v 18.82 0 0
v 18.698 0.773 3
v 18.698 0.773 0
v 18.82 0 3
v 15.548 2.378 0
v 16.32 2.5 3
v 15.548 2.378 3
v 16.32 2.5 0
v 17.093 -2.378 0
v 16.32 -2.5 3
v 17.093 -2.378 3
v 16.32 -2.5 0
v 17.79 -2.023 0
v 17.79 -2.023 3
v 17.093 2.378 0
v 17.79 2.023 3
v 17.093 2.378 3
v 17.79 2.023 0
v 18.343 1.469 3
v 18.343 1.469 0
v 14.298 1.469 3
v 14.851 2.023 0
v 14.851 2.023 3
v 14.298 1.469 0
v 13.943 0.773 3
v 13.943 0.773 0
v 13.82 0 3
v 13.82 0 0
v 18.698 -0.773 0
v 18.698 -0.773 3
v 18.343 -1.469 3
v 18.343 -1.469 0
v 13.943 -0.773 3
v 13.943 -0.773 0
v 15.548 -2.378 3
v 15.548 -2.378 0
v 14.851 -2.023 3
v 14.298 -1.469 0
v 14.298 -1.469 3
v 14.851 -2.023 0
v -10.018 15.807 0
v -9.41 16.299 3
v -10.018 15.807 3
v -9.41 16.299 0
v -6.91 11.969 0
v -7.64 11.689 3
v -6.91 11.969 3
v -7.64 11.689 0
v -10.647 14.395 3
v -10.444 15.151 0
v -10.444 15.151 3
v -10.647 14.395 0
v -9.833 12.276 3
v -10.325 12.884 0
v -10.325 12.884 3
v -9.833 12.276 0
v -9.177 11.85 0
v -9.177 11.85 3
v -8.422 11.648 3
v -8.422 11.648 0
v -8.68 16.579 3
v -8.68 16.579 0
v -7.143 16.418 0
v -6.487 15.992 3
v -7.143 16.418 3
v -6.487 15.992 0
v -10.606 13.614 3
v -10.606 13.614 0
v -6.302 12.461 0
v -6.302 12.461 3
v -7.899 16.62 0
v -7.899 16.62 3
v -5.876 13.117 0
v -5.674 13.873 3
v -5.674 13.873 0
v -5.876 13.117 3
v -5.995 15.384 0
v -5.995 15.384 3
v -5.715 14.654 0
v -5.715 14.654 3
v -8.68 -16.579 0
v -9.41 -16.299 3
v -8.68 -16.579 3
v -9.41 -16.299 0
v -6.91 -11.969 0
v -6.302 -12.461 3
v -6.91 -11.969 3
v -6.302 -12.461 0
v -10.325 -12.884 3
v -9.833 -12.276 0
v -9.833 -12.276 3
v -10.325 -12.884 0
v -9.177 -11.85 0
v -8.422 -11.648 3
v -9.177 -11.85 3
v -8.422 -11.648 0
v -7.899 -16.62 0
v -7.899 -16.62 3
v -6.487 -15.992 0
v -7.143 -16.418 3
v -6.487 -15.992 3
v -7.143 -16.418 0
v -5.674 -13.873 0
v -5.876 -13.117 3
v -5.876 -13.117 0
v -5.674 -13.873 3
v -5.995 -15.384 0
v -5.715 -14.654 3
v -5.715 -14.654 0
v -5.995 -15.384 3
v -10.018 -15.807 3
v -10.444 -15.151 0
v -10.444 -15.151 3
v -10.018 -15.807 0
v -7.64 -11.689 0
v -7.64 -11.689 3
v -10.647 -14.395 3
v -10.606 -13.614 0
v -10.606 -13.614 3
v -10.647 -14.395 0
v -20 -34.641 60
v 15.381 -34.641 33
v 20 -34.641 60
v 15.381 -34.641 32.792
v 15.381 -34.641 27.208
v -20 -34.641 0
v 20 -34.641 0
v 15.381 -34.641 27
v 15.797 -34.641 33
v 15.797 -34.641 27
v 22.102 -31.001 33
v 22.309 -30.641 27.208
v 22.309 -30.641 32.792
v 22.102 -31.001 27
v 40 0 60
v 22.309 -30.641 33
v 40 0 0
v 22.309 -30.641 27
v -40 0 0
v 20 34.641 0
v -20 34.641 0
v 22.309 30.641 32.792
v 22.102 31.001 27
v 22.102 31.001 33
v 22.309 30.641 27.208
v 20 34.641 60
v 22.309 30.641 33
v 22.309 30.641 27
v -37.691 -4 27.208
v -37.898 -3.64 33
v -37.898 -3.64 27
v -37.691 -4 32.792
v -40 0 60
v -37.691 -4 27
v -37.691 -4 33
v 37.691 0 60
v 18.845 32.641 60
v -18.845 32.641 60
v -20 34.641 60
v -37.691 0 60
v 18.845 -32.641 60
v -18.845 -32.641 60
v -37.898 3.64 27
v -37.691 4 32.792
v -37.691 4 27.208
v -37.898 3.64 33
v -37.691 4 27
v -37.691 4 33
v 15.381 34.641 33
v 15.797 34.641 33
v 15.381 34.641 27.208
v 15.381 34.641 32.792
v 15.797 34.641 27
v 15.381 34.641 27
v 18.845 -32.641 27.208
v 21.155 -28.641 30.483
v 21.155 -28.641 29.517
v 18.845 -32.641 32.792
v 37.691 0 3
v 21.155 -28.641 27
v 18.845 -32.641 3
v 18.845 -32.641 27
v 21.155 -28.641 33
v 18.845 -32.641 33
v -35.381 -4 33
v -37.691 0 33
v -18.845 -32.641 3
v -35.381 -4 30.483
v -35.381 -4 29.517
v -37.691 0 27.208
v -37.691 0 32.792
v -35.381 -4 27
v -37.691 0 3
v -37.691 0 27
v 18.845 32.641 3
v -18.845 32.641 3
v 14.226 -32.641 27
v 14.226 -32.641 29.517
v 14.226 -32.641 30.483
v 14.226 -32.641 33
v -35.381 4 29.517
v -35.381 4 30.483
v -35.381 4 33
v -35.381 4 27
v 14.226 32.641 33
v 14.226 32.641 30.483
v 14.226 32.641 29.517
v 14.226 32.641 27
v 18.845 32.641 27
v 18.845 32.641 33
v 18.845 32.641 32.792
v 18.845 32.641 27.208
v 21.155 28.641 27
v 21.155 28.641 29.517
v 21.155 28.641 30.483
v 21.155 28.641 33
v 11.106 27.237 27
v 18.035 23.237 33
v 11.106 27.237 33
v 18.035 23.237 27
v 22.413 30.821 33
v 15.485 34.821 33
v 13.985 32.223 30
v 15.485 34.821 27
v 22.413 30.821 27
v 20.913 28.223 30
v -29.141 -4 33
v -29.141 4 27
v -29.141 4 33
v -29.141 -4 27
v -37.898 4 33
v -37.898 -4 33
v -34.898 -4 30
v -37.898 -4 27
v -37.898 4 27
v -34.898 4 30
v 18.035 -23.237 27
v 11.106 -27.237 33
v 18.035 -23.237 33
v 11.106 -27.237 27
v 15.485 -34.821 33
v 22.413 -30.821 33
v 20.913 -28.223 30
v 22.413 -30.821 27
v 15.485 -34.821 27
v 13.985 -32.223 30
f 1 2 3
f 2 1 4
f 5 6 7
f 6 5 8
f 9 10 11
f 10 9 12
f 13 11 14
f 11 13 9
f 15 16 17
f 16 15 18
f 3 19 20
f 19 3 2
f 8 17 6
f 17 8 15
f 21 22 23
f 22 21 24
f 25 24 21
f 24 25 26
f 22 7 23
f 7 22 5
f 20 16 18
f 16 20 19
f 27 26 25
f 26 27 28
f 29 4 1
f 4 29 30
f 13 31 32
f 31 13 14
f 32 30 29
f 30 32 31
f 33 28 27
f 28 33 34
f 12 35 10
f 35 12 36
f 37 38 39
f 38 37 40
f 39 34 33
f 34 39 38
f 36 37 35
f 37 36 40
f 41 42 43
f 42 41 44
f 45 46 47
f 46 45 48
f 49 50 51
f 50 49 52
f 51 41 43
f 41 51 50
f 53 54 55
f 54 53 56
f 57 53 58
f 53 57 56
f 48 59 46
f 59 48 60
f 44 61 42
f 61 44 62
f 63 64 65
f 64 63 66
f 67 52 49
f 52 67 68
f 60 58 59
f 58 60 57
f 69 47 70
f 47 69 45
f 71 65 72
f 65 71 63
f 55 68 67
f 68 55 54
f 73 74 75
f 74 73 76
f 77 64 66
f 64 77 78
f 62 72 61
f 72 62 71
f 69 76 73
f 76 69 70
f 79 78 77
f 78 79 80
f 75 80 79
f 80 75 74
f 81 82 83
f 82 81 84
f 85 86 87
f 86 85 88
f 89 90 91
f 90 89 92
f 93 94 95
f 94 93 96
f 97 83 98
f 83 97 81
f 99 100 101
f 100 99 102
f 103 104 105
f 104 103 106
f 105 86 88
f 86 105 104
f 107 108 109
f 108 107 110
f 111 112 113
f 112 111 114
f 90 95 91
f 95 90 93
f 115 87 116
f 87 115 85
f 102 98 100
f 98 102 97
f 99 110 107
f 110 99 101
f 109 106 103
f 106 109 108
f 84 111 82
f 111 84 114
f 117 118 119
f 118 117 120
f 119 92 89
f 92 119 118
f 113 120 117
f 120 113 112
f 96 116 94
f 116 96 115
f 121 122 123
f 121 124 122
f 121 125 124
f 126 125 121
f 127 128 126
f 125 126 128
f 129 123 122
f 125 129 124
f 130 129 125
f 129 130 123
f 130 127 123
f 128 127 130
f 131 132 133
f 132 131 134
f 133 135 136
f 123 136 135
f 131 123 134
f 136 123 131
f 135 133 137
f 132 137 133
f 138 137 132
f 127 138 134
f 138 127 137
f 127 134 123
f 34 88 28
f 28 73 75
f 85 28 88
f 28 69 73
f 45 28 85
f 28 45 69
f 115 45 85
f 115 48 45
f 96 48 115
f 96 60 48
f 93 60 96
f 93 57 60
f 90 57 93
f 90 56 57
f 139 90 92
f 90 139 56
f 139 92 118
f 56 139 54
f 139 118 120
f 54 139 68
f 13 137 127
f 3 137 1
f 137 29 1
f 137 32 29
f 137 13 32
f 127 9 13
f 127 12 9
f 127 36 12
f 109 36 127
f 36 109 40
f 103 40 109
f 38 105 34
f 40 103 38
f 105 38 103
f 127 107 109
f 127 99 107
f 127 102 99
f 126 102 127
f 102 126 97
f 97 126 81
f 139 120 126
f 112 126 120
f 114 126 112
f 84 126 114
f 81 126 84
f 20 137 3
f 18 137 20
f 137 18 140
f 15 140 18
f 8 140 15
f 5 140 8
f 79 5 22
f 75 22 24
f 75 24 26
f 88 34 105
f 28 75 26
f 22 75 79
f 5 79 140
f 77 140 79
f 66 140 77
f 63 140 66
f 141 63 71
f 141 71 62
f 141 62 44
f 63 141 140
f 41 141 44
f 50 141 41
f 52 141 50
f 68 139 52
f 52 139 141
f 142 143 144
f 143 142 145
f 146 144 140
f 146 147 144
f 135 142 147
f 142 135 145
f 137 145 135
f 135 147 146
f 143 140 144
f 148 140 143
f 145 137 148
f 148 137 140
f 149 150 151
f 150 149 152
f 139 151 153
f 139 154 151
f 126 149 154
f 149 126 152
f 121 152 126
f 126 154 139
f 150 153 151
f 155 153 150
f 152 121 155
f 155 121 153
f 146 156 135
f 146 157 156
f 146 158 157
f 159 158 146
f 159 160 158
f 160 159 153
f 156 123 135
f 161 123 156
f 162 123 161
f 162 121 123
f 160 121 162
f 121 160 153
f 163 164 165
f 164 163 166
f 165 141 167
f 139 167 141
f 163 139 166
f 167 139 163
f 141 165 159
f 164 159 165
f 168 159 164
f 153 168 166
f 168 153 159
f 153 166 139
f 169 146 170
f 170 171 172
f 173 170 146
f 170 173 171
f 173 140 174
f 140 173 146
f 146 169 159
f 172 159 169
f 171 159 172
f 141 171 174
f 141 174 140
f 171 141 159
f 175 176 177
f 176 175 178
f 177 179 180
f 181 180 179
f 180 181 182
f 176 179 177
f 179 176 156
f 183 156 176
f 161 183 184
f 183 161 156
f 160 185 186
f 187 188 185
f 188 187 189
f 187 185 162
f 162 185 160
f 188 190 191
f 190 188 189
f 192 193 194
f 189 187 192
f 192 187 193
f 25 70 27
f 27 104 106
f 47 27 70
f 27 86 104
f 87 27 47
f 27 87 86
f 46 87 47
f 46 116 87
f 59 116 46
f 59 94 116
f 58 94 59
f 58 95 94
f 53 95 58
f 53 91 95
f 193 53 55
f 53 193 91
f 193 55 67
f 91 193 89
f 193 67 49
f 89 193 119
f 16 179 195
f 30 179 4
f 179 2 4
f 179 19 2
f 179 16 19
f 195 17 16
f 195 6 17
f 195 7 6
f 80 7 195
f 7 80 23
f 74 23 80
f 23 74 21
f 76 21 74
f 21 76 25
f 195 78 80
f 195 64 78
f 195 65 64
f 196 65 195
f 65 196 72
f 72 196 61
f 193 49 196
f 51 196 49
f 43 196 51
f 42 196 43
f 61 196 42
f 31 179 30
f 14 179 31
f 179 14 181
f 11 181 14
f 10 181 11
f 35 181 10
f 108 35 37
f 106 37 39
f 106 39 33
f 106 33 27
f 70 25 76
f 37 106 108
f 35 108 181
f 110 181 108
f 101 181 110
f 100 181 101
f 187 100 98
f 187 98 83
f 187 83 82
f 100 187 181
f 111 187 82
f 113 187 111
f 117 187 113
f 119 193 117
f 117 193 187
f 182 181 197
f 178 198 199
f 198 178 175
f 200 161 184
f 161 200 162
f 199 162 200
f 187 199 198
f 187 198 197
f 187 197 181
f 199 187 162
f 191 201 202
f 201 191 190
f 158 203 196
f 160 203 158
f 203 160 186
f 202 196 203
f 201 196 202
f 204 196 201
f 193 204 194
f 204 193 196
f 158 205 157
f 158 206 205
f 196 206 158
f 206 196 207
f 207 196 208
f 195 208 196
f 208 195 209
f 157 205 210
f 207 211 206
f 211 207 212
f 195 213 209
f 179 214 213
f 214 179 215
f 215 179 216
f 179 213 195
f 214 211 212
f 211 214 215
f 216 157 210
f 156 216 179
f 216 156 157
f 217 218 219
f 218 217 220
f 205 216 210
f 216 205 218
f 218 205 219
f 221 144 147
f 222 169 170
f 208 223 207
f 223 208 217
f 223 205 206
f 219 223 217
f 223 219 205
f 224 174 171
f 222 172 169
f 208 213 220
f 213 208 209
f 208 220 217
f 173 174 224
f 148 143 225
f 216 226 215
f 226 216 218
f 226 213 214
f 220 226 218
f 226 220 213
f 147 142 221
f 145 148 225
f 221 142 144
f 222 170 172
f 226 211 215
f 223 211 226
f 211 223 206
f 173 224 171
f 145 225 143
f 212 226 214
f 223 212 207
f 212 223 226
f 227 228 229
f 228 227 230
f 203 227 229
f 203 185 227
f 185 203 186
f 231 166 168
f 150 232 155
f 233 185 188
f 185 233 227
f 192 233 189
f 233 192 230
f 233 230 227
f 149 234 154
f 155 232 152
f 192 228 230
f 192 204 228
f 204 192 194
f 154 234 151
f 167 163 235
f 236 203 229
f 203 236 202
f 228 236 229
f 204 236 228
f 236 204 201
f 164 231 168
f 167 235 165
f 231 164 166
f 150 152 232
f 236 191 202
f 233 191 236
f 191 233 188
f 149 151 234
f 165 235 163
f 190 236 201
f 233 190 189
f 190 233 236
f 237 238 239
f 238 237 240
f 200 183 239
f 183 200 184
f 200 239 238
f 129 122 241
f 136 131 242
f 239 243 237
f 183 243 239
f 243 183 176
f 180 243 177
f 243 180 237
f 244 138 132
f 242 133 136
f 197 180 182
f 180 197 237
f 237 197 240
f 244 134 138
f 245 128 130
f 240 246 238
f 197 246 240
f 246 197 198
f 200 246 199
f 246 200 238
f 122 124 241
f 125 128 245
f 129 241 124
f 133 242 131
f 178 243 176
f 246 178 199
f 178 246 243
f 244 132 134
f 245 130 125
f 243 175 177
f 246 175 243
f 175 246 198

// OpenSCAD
// Modular Planter - Small (Small herb planter)
// Generated by customizer.py

// Parameters
hex_size = 40;
height = 60;
wall_thickness = 2;
bottom_thickness = 3;
drainage_hole_d = 5;
connector_depth = 5;
connector_tolerance = 0.3;

// Derived values
apothem = hex_size * sqrt(3) / 2;
inner_apothem = apothem - wall_thickness;

// Main planter module
module planter_module() {
    difference() {
        linear_extrude(height = height)
            hexagon(apothem);
        
        translate([0, 0, bottom_thickness])
            linear_extrude(height = height - bottom_thickness + 1)
                hexagon(inner_apothem);
        
        for (i = [0:2]) {
            rotate([0, 0, i * 120])
                translate([inner_apothem * 0.5, 0, -1])
                    cylinder(d = drainage_hole_d, h = bottom_thickness + 2, $fn=20);
        }
    }
    
    for (i = [0:2]) {
        rotate([0, 0, i * 120 + 60])
            translate([apothem - 0.5, 0, height * 0.5])
                connector_male();
    }
}

module hexagon(r) {
    circle(r = r / cos(30), $fn = 6);
}

module connector_male() {
    difference() {
        cube([connector_depth * 2, 8, 6], center = true);
        translate([connector_depth, 0, 0])
            rotate([0, 45, 0])
                cube([6, 10, 6], center = true);
    }
}

planter_module();
